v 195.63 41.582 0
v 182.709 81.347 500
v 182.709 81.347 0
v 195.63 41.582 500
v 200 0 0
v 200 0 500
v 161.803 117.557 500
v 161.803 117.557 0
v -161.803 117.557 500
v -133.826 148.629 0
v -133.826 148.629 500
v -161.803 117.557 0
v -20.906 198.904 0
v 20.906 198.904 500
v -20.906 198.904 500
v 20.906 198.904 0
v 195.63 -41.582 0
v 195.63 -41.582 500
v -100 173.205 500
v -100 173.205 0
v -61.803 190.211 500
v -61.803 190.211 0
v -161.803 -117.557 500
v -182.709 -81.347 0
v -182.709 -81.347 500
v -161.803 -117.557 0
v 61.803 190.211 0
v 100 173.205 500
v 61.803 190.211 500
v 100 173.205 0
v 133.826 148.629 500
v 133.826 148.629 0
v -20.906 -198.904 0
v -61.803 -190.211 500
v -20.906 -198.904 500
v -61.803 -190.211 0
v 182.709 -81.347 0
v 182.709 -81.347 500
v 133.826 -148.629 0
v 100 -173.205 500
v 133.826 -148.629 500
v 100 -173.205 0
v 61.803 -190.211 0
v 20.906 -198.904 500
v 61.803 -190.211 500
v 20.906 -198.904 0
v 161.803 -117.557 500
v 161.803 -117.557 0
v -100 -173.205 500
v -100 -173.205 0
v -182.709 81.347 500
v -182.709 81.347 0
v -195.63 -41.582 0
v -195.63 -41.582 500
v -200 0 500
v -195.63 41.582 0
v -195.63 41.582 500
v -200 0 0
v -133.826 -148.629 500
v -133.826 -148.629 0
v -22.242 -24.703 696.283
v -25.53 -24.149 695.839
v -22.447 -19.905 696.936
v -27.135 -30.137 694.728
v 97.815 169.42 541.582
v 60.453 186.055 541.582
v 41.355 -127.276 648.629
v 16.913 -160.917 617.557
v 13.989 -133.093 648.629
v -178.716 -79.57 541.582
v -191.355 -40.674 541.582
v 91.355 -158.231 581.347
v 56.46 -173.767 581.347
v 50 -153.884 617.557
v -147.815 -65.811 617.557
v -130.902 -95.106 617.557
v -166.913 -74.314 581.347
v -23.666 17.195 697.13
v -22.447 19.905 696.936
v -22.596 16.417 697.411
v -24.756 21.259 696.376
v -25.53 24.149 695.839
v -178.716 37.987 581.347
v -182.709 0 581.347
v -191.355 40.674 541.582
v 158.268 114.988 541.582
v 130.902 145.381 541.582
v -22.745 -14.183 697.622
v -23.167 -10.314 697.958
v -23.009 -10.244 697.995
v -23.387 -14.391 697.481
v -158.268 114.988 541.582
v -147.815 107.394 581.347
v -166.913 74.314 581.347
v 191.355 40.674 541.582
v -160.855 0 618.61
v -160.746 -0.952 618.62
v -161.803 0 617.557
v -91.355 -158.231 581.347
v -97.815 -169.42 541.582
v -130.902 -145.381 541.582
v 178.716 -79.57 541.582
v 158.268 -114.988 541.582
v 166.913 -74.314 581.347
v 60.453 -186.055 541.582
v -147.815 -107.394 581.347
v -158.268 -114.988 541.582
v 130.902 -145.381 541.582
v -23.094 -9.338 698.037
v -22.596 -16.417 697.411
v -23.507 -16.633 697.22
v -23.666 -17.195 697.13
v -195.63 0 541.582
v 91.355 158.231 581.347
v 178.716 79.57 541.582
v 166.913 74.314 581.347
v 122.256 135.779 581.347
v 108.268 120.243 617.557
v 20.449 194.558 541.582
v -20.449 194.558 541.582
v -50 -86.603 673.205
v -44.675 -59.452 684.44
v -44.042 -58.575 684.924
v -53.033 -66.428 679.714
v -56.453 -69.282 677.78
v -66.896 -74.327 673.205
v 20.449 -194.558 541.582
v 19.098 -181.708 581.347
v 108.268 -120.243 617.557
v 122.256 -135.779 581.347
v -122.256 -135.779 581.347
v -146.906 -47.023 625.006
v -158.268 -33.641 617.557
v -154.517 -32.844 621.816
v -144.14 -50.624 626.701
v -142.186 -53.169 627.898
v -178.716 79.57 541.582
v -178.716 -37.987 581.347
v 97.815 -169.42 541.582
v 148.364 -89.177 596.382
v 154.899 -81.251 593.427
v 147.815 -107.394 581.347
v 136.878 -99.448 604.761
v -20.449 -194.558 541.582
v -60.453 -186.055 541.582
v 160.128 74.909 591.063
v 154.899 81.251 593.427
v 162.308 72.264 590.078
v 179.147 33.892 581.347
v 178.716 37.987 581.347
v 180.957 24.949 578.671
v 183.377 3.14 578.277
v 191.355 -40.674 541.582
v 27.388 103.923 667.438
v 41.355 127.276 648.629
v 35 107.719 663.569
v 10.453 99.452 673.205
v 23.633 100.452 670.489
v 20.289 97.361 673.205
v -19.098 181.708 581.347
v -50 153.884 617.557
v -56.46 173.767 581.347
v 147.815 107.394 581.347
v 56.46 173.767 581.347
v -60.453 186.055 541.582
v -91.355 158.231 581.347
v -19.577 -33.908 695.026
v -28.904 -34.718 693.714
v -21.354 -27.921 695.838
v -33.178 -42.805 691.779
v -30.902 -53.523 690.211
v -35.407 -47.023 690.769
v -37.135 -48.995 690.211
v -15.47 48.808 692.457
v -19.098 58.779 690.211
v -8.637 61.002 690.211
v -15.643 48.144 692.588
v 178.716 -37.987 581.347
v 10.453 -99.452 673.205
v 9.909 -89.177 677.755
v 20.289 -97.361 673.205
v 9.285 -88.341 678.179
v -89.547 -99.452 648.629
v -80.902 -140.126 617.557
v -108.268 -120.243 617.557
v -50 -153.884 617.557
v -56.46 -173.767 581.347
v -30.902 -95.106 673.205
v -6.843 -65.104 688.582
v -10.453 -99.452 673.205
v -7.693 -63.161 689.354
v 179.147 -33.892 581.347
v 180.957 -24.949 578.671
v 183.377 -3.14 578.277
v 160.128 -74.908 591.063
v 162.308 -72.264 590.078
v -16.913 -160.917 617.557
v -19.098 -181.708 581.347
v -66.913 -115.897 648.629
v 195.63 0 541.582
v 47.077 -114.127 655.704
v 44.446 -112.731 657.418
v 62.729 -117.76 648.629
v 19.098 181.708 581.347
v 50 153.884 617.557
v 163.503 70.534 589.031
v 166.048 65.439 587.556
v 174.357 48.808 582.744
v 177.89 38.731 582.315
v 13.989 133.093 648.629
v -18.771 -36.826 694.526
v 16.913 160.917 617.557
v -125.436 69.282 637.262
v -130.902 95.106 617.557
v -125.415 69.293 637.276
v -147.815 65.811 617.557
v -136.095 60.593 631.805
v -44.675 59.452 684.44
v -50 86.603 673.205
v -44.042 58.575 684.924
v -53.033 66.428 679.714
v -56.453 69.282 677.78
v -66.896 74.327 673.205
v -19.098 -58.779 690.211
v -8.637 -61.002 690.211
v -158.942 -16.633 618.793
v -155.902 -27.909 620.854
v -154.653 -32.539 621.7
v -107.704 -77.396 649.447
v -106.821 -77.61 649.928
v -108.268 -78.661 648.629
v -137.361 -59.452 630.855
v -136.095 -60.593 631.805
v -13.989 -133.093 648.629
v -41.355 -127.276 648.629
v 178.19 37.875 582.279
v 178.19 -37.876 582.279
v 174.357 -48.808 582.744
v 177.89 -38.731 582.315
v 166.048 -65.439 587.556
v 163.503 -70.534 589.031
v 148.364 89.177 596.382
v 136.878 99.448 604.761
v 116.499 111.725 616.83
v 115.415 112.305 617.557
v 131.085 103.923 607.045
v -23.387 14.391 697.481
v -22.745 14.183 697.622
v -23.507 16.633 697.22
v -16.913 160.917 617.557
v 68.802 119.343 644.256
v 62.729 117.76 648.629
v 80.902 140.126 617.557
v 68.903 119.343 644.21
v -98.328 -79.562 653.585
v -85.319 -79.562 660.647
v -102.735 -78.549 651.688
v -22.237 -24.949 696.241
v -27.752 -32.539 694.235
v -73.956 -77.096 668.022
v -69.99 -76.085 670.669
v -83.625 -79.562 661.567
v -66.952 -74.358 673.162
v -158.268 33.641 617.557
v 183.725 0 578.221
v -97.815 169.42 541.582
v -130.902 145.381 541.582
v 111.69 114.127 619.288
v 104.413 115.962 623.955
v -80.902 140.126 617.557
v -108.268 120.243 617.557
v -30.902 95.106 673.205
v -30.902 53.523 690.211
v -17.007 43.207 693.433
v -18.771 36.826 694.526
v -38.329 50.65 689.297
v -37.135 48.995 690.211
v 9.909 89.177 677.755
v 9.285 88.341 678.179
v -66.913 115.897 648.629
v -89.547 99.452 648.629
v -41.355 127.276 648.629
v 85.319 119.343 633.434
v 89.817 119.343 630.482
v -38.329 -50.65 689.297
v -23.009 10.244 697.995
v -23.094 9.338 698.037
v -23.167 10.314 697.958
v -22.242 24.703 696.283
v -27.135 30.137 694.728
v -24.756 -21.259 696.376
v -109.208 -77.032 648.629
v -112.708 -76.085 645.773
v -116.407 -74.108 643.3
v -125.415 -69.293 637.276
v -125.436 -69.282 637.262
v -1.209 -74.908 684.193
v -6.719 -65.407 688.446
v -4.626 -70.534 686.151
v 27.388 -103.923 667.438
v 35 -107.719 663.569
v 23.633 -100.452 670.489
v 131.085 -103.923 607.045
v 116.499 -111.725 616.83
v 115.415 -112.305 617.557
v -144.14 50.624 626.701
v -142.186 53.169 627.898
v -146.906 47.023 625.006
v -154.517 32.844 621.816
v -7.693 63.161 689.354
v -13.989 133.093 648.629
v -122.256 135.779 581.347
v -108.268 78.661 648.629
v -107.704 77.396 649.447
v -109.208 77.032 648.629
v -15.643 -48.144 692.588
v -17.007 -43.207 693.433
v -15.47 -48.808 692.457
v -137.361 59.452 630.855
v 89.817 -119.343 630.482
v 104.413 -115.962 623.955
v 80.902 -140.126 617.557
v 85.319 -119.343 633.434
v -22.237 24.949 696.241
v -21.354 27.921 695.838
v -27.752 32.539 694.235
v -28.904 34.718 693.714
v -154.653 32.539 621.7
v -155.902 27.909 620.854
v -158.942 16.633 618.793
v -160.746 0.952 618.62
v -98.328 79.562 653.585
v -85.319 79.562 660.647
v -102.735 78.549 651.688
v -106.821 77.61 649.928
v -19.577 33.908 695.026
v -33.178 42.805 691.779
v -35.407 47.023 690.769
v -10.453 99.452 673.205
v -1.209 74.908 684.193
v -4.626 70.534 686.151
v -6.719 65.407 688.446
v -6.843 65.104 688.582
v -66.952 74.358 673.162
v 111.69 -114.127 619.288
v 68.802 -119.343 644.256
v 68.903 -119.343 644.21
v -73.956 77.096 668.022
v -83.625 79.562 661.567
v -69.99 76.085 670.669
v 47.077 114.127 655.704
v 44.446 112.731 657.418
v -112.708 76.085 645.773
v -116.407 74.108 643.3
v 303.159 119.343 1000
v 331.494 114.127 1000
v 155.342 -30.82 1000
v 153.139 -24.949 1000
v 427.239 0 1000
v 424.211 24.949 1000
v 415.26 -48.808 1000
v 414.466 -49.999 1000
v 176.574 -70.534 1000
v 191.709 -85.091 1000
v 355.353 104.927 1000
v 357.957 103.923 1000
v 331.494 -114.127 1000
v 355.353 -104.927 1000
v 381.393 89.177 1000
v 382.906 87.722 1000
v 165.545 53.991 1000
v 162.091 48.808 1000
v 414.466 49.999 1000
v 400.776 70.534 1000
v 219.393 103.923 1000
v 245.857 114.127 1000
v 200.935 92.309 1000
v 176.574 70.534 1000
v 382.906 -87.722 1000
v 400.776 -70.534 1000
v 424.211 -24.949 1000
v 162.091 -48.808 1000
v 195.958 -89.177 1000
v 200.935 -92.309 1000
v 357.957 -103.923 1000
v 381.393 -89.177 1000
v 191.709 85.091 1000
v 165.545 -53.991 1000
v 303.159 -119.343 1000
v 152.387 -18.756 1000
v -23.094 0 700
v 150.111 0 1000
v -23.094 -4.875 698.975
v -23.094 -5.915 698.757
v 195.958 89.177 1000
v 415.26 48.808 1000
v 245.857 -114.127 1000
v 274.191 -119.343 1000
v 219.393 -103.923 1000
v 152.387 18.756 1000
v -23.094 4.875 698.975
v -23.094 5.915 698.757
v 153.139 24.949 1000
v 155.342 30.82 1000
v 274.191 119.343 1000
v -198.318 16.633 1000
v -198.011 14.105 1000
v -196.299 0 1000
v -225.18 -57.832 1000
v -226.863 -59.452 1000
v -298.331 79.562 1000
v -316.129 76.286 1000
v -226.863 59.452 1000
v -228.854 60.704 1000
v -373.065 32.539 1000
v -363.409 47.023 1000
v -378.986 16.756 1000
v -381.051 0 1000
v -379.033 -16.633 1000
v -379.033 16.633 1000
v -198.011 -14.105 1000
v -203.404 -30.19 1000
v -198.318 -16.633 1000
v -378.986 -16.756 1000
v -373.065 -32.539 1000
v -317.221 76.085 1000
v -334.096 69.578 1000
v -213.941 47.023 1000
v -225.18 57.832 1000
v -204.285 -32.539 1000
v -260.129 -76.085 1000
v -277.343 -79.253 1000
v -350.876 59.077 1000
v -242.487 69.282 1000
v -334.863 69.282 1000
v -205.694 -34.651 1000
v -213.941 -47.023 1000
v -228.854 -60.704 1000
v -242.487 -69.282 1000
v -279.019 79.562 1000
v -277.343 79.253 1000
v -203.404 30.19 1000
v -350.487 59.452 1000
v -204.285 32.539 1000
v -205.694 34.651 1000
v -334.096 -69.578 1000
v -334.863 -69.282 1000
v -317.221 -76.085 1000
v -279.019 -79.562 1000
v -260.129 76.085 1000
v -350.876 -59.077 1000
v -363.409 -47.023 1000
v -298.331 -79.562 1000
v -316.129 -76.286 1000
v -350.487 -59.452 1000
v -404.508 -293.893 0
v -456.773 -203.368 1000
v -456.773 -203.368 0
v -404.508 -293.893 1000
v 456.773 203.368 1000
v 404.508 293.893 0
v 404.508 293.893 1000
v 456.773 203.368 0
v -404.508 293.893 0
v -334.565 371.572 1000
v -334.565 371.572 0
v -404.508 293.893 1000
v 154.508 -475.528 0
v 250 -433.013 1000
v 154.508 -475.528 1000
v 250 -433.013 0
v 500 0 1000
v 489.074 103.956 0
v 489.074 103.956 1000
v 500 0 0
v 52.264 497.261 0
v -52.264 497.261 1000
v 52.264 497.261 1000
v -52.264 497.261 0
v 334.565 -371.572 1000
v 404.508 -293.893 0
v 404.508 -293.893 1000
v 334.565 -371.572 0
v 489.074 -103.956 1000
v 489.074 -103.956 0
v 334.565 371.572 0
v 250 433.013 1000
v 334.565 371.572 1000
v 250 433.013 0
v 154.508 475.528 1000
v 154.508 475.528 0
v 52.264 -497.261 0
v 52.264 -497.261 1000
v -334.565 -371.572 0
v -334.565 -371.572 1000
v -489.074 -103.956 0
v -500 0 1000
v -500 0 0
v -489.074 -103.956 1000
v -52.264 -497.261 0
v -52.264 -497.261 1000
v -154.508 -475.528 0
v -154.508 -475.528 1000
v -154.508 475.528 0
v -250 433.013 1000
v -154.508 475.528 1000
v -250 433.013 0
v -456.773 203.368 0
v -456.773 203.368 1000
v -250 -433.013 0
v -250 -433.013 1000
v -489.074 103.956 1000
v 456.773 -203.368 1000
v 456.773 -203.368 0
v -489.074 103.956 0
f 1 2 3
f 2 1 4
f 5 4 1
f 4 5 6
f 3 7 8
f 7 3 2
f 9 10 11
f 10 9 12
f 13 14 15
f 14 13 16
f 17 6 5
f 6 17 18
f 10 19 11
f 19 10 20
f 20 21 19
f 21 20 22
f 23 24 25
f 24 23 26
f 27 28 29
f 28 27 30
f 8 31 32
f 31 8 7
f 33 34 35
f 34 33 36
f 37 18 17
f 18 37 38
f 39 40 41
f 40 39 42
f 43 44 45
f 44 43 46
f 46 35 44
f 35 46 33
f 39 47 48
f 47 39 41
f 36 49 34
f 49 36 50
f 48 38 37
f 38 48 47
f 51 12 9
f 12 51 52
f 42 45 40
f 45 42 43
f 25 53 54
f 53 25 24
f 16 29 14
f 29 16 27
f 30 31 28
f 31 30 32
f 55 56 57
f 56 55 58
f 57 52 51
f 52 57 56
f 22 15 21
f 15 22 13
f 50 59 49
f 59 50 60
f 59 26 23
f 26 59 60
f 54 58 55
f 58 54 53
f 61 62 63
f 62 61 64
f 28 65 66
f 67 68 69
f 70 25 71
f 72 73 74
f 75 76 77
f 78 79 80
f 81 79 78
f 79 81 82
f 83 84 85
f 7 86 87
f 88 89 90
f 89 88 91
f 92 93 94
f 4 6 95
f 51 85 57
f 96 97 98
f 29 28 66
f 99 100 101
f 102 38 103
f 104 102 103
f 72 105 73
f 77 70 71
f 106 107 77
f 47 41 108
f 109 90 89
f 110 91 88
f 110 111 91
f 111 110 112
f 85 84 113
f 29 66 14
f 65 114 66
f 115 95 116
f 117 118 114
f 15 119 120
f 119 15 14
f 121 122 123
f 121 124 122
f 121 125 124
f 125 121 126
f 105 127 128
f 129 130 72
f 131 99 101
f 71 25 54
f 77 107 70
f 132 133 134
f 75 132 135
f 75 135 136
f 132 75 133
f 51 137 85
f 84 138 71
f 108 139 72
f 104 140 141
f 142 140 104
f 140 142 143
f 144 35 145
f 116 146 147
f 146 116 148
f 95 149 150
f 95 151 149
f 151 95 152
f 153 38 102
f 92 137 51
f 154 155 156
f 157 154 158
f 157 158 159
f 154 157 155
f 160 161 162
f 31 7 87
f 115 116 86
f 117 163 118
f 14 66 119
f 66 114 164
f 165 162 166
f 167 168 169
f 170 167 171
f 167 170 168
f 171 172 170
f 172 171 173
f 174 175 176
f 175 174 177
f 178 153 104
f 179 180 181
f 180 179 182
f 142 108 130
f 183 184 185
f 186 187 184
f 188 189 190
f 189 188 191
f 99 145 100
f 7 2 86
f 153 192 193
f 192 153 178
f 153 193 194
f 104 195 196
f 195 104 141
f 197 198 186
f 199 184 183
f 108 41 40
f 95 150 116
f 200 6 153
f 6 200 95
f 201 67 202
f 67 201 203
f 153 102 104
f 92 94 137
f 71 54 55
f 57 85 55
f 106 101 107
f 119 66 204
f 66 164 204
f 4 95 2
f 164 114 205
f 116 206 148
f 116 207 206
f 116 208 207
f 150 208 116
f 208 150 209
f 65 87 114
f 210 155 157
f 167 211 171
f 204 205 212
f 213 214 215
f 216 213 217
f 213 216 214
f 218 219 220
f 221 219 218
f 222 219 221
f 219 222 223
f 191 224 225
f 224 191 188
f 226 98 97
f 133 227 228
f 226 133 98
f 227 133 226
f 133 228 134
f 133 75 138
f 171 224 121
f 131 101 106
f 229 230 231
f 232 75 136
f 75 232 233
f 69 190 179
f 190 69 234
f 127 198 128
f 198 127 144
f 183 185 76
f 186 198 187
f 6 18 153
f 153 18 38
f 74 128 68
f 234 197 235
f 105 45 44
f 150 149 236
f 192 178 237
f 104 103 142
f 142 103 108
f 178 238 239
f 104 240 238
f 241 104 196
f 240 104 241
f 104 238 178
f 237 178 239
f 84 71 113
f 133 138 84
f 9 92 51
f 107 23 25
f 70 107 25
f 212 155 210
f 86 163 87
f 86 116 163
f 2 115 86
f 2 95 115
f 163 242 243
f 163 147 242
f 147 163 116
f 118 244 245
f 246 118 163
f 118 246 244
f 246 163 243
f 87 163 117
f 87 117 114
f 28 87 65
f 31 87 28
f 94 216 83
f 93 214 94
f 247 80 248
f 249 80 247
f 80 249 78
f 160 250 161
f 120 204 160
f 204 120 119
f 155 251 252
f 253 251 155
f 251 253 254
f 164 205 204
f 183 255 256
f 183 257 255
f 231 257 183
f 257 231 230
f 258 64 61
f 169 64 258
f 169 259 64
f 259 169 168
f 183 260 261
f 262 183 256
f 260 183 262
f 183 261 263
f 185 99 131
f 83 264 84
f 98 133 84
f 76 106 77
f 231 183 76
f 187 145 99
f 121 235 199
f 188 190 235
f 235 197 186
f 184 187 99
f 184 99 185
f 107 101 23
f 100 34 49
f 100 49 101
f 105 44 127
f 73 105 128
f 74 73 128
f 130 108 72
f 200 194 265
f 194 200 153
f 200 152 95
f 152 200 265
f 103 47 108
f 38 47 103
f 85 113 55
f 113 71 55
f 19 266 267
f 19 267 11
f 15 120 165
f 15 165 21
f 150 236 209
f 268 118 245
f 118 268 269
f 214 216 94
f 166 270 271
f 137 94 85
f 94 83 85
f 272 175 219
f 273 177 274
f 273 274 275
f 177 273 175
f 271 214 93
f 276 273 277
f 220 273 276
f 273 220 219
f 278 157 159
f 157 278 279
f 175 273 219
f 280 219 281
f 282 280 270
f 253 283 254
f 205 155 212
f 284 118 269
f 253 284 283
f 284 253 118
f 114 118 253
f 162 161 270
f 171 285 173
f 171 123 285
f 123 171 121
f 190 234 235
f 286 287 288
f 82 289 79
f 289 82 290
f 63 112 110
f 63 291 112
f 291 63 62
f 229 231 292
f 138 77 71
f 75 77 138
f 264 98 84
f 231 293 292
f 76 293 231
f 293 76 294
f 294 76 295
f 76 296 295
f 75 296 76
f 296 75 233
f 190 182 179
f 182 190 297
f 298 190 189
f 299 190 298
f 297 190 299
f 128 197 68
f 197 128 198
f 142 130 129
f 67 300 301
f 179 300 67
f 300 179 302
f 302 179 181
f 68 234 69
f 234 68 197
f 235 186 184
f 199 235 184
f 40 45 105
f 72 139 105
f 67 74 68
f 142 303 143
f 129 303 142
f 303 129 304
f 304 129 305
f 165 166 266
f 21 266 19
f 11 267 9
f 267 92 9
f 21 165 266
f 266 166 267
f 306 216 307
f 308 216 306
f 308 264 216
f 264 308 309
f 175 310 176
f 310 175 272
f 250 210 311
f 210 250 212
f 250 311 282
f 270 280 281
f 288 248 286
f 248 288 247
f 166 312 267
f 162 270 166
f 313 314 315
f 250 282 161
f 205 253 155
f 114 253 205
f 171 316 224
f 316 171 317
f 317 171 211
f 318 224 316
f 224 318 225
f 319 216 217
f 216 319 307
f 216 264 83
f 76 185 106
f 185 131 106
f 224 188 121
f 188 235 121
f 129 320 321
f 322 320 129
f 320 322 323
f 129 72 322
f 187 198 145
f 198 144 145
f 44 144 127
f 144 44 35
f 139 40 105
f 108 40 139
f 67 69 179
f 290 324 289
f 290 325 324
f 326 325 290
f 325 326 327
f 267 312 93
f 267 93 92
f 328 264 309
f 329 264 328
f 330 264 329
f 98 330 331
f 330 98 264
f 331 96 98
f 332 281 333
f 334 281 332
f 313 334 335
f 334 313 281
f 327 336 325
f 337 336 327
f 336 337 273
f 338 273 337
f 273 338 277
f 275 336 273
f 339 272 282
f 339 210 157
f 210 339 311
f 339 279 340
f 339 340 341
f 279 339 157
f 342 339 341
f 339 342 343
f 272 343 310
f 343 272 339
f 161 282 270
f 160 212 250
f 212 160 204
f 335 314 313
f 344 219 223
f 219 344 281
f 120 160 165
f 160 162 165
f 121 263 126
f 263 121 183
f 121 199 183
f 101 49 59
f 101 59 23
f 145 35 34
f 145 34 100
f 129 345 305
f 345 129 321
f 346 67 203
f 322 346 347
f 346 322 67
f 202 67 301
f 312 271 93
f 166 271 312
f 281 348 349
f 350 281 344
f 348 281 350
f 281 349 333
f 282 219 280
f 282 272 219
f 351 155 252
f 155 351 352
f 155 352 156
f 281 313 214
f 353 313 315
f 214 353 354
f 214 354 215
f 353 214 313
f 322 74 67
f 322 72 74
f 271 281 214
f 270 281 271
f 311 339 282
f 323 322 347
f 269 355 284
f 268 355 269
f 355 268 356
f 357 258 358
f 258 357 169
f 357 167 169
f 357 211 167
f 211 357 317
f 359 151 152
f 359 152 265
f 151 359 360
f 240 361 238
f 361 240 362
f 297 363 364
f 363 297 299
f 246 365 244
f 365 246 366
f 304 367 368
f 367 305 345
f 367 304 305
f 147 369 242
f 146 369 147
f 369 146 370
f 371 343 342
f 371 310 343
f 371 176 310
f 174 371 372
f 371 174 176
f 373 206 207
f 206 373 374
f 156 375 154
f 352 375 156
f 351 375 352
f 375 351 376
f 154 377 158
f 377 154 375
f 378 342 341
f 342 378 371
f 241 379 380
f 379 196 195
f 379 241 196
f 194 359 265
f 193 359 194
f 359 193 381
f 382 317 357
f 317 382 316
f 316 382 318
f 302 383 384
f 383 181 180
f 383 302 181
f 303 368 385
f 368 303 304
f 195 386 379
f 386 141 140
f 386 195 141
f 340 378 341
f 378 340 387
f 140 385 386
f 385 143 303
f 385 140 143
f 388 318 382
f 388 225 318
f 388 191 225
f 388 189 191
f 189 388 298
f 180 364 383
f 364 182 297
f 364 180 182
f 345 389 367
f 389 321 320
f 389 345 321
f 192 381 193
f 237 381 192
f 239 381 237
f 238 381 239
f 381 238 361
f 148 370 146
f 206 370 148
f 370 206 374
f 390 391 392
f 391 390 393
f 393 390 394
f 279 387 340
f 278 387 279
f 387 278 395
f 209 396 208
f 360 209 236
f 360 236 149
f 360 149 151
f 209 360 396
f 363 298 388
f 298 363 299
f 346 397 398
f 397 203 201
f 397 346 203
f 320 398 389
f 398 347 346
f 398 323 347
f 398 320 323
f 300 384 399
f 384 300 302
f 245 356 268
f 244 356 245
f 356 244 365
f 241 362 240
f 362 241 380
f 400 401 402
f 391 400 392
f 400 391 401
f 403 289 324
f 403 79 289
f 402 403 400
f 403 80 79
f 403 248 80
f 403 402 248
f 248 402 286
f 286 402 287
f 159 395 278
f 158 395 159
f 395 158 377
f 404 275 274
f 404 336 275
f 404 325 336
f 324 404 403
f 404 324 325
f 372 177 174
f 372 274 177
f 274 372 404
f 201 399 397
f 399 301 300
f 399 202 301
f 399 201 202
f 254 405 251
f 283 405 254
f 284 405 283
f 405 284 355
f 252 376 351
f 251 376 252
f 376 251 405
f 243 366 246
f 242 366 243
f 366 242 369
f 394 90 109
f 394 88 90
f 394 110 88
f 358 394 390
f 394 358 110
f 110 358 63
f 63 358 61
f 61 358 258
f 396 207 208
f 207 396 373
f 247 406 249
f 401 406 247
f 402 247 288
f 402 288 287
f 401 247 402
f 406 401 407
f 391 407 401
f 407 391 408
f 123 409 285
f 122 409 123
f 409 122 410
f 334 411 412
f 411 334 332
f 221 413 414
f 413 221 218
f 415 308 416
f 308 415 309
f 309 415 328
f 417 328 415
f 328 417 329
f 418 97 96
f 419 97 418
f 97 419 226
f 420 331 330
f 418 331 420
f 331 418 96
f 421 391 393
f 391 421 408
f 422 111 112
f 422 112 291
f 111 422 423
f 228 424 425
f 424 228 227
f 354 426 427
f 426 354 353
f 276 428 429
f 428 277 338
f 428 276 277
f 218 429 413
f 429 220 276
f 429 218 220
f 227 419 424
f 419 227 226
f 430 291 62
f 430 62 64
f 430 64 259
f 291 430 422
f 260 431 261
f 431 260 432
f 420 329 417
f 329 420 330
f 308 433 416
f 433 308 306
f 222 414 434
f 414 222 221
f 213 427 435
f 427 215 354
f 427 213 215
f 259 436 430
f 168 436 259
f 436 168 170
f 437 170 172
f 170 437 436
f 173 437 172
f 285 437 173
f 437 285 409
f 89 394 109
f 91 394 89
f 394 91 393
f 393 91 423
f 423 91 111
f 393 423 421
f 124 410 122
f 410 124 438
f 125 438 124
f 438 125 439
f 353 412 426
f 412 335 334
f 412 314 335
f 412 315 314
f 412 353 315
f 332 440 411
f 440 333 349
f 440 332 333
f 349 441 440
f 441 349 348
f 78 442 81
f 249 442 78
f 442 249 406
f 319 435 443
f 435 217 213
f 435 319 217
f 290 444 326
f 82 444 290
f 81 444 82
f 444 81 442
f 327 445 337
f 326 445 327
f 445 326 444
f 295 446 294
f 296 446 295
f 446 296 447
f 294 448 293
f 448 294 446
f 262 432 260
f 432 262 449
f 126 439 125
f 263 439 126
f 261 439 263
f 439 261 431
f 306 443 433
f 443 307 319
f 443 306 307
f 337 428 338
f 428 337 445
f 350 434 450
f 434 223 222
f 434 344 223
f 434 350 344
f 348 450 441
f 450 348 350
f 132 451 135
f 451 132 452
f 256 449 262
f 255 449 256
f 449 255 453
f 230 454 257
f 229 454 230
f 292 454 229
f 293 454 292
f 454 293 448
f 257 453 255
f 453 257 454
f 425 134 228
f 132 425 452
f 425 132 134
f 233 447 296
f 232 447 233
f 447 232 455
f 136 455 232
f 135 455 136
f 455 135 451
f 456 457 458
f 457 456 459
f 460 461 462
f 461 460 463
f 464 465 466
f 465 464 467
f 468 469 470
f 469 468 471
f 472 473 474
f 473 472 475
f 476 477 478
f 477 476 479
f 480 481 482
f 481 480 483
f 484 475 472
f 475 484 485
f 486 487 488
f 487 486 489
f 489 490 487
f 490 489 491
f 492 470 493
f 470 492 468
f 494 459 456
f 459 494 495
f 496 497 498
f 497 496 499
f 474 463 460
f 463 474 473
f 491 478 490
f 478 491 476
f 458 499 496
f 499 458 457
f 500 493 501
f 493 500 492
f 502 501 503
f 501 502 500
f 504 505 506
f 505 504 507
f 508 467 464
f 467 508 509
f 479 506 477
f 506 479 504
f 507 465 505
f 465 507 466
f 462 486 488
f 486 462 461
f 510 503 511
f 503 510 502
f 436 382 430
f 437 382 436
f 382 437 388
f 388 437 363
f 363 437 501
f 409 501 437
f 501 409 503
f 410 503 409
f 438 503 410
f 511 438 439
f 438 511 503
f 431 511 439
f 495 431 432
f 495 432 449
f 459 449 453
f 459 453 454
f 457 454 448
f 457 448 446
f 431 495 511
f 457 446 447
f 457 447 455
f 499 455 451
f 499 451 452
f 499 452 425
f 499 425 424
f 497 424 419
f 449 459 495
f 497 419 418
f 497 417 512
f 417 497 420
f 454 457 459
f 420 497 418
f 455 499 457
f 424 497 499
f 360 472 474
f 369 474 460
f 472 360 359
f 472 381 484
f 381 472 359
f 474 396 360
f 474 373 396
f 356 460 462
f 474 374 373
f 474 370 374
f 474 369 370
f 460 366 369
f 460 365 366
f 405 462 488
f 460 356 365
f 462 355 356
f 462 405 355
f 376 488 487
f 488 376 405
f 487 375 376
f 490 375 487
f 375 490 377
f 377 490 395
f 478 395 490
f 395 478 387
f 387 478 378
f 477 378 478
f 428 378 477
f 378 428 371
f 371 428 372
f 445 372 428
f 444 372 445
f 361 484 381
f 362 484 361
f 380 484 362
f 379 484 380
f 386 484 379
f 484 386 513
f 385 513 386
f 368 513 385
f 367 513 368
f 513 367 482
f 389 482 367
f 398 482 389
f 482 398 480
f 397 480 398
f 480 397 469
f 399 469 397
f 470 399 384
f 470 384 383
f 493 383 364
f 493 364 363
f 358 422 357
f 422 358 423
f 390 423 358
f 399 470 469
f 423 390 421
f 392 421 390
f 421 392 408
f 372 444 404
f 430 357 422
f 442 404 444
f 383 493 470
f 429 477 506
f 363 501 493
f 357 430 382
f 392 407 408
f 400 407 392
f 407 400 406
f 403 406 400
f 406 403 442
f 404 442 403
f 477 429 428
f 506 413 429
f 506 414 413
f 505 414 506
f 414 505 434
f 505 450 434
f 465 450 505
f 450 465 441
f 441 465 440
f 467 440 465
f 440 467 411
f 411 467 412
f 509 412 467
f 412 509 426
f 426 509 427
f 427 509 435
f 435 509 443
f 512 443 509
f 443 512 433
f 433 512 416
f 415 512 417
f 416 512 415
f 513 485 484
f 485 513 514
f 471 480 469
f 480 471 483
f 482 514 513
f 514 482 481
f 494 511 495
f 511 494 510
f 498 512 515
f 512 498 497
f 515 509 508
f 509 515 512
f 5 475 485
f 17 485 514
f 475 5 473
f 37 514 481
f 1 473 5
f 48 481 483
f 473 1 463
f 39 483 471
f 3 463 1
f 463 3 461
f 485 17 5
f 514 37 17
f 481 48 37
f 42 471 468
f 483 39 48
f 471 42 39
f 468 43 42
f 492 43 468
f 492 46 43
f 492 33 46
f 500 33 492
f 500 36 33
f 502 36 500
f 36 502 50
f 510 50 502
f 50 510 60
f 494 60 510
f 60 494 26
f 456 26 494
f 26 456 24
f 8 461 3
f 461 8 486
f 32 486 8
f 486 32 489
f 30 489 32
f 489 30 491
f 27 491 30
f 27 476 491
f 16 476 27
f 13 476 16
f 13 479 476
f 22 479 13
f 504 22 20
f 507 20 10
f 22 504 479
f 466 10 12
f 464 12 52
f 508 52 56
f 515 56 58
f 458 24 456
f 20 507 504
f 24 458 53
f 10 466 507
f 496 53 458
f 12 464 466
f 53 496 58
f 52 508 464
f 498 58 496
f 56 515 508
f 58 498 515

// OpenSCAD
cylinder_radius = 500;
cylinder_heigth = 1000;
trunk_radius = 200;
trunk_heigth = 500;
branch1_radius = 120;
branch2_radius = 80;
branch1_angle = 30;
branch2_angle = -30;
branch1_length = (cylinder_heigth - trunk_heigth) / cos(branch1_angle);
branch2_length = (cylinder_heigth - trunk_heigth) / cos(branch2_angle);

difference() {
    
    cylinder(h = cylinder_heigth, r = cylinder_radius);
    
    union() {

        translate([0, 0, -1])
            cylinder(
                h=trunk_heigth + 1, 
                r=trunk_radius
            );
        
        translate([0, 0, trunk_heigth])
            sphere(r = trunk_radius);
        
        translate([0, 0, trunk_heigth])
        rotate([0, branch1_angle, 0])
            cylinder(
                h=branch1_length + 100, 
                r=branch1_radius
            );
            
        translate([0, 0, trunk_heigth])
        rotate([0, branch2_angle, 0])
            cylinder(
                h=branch2_length + 50, 
                r=branch2_radius
            );
        
    }
    
}
